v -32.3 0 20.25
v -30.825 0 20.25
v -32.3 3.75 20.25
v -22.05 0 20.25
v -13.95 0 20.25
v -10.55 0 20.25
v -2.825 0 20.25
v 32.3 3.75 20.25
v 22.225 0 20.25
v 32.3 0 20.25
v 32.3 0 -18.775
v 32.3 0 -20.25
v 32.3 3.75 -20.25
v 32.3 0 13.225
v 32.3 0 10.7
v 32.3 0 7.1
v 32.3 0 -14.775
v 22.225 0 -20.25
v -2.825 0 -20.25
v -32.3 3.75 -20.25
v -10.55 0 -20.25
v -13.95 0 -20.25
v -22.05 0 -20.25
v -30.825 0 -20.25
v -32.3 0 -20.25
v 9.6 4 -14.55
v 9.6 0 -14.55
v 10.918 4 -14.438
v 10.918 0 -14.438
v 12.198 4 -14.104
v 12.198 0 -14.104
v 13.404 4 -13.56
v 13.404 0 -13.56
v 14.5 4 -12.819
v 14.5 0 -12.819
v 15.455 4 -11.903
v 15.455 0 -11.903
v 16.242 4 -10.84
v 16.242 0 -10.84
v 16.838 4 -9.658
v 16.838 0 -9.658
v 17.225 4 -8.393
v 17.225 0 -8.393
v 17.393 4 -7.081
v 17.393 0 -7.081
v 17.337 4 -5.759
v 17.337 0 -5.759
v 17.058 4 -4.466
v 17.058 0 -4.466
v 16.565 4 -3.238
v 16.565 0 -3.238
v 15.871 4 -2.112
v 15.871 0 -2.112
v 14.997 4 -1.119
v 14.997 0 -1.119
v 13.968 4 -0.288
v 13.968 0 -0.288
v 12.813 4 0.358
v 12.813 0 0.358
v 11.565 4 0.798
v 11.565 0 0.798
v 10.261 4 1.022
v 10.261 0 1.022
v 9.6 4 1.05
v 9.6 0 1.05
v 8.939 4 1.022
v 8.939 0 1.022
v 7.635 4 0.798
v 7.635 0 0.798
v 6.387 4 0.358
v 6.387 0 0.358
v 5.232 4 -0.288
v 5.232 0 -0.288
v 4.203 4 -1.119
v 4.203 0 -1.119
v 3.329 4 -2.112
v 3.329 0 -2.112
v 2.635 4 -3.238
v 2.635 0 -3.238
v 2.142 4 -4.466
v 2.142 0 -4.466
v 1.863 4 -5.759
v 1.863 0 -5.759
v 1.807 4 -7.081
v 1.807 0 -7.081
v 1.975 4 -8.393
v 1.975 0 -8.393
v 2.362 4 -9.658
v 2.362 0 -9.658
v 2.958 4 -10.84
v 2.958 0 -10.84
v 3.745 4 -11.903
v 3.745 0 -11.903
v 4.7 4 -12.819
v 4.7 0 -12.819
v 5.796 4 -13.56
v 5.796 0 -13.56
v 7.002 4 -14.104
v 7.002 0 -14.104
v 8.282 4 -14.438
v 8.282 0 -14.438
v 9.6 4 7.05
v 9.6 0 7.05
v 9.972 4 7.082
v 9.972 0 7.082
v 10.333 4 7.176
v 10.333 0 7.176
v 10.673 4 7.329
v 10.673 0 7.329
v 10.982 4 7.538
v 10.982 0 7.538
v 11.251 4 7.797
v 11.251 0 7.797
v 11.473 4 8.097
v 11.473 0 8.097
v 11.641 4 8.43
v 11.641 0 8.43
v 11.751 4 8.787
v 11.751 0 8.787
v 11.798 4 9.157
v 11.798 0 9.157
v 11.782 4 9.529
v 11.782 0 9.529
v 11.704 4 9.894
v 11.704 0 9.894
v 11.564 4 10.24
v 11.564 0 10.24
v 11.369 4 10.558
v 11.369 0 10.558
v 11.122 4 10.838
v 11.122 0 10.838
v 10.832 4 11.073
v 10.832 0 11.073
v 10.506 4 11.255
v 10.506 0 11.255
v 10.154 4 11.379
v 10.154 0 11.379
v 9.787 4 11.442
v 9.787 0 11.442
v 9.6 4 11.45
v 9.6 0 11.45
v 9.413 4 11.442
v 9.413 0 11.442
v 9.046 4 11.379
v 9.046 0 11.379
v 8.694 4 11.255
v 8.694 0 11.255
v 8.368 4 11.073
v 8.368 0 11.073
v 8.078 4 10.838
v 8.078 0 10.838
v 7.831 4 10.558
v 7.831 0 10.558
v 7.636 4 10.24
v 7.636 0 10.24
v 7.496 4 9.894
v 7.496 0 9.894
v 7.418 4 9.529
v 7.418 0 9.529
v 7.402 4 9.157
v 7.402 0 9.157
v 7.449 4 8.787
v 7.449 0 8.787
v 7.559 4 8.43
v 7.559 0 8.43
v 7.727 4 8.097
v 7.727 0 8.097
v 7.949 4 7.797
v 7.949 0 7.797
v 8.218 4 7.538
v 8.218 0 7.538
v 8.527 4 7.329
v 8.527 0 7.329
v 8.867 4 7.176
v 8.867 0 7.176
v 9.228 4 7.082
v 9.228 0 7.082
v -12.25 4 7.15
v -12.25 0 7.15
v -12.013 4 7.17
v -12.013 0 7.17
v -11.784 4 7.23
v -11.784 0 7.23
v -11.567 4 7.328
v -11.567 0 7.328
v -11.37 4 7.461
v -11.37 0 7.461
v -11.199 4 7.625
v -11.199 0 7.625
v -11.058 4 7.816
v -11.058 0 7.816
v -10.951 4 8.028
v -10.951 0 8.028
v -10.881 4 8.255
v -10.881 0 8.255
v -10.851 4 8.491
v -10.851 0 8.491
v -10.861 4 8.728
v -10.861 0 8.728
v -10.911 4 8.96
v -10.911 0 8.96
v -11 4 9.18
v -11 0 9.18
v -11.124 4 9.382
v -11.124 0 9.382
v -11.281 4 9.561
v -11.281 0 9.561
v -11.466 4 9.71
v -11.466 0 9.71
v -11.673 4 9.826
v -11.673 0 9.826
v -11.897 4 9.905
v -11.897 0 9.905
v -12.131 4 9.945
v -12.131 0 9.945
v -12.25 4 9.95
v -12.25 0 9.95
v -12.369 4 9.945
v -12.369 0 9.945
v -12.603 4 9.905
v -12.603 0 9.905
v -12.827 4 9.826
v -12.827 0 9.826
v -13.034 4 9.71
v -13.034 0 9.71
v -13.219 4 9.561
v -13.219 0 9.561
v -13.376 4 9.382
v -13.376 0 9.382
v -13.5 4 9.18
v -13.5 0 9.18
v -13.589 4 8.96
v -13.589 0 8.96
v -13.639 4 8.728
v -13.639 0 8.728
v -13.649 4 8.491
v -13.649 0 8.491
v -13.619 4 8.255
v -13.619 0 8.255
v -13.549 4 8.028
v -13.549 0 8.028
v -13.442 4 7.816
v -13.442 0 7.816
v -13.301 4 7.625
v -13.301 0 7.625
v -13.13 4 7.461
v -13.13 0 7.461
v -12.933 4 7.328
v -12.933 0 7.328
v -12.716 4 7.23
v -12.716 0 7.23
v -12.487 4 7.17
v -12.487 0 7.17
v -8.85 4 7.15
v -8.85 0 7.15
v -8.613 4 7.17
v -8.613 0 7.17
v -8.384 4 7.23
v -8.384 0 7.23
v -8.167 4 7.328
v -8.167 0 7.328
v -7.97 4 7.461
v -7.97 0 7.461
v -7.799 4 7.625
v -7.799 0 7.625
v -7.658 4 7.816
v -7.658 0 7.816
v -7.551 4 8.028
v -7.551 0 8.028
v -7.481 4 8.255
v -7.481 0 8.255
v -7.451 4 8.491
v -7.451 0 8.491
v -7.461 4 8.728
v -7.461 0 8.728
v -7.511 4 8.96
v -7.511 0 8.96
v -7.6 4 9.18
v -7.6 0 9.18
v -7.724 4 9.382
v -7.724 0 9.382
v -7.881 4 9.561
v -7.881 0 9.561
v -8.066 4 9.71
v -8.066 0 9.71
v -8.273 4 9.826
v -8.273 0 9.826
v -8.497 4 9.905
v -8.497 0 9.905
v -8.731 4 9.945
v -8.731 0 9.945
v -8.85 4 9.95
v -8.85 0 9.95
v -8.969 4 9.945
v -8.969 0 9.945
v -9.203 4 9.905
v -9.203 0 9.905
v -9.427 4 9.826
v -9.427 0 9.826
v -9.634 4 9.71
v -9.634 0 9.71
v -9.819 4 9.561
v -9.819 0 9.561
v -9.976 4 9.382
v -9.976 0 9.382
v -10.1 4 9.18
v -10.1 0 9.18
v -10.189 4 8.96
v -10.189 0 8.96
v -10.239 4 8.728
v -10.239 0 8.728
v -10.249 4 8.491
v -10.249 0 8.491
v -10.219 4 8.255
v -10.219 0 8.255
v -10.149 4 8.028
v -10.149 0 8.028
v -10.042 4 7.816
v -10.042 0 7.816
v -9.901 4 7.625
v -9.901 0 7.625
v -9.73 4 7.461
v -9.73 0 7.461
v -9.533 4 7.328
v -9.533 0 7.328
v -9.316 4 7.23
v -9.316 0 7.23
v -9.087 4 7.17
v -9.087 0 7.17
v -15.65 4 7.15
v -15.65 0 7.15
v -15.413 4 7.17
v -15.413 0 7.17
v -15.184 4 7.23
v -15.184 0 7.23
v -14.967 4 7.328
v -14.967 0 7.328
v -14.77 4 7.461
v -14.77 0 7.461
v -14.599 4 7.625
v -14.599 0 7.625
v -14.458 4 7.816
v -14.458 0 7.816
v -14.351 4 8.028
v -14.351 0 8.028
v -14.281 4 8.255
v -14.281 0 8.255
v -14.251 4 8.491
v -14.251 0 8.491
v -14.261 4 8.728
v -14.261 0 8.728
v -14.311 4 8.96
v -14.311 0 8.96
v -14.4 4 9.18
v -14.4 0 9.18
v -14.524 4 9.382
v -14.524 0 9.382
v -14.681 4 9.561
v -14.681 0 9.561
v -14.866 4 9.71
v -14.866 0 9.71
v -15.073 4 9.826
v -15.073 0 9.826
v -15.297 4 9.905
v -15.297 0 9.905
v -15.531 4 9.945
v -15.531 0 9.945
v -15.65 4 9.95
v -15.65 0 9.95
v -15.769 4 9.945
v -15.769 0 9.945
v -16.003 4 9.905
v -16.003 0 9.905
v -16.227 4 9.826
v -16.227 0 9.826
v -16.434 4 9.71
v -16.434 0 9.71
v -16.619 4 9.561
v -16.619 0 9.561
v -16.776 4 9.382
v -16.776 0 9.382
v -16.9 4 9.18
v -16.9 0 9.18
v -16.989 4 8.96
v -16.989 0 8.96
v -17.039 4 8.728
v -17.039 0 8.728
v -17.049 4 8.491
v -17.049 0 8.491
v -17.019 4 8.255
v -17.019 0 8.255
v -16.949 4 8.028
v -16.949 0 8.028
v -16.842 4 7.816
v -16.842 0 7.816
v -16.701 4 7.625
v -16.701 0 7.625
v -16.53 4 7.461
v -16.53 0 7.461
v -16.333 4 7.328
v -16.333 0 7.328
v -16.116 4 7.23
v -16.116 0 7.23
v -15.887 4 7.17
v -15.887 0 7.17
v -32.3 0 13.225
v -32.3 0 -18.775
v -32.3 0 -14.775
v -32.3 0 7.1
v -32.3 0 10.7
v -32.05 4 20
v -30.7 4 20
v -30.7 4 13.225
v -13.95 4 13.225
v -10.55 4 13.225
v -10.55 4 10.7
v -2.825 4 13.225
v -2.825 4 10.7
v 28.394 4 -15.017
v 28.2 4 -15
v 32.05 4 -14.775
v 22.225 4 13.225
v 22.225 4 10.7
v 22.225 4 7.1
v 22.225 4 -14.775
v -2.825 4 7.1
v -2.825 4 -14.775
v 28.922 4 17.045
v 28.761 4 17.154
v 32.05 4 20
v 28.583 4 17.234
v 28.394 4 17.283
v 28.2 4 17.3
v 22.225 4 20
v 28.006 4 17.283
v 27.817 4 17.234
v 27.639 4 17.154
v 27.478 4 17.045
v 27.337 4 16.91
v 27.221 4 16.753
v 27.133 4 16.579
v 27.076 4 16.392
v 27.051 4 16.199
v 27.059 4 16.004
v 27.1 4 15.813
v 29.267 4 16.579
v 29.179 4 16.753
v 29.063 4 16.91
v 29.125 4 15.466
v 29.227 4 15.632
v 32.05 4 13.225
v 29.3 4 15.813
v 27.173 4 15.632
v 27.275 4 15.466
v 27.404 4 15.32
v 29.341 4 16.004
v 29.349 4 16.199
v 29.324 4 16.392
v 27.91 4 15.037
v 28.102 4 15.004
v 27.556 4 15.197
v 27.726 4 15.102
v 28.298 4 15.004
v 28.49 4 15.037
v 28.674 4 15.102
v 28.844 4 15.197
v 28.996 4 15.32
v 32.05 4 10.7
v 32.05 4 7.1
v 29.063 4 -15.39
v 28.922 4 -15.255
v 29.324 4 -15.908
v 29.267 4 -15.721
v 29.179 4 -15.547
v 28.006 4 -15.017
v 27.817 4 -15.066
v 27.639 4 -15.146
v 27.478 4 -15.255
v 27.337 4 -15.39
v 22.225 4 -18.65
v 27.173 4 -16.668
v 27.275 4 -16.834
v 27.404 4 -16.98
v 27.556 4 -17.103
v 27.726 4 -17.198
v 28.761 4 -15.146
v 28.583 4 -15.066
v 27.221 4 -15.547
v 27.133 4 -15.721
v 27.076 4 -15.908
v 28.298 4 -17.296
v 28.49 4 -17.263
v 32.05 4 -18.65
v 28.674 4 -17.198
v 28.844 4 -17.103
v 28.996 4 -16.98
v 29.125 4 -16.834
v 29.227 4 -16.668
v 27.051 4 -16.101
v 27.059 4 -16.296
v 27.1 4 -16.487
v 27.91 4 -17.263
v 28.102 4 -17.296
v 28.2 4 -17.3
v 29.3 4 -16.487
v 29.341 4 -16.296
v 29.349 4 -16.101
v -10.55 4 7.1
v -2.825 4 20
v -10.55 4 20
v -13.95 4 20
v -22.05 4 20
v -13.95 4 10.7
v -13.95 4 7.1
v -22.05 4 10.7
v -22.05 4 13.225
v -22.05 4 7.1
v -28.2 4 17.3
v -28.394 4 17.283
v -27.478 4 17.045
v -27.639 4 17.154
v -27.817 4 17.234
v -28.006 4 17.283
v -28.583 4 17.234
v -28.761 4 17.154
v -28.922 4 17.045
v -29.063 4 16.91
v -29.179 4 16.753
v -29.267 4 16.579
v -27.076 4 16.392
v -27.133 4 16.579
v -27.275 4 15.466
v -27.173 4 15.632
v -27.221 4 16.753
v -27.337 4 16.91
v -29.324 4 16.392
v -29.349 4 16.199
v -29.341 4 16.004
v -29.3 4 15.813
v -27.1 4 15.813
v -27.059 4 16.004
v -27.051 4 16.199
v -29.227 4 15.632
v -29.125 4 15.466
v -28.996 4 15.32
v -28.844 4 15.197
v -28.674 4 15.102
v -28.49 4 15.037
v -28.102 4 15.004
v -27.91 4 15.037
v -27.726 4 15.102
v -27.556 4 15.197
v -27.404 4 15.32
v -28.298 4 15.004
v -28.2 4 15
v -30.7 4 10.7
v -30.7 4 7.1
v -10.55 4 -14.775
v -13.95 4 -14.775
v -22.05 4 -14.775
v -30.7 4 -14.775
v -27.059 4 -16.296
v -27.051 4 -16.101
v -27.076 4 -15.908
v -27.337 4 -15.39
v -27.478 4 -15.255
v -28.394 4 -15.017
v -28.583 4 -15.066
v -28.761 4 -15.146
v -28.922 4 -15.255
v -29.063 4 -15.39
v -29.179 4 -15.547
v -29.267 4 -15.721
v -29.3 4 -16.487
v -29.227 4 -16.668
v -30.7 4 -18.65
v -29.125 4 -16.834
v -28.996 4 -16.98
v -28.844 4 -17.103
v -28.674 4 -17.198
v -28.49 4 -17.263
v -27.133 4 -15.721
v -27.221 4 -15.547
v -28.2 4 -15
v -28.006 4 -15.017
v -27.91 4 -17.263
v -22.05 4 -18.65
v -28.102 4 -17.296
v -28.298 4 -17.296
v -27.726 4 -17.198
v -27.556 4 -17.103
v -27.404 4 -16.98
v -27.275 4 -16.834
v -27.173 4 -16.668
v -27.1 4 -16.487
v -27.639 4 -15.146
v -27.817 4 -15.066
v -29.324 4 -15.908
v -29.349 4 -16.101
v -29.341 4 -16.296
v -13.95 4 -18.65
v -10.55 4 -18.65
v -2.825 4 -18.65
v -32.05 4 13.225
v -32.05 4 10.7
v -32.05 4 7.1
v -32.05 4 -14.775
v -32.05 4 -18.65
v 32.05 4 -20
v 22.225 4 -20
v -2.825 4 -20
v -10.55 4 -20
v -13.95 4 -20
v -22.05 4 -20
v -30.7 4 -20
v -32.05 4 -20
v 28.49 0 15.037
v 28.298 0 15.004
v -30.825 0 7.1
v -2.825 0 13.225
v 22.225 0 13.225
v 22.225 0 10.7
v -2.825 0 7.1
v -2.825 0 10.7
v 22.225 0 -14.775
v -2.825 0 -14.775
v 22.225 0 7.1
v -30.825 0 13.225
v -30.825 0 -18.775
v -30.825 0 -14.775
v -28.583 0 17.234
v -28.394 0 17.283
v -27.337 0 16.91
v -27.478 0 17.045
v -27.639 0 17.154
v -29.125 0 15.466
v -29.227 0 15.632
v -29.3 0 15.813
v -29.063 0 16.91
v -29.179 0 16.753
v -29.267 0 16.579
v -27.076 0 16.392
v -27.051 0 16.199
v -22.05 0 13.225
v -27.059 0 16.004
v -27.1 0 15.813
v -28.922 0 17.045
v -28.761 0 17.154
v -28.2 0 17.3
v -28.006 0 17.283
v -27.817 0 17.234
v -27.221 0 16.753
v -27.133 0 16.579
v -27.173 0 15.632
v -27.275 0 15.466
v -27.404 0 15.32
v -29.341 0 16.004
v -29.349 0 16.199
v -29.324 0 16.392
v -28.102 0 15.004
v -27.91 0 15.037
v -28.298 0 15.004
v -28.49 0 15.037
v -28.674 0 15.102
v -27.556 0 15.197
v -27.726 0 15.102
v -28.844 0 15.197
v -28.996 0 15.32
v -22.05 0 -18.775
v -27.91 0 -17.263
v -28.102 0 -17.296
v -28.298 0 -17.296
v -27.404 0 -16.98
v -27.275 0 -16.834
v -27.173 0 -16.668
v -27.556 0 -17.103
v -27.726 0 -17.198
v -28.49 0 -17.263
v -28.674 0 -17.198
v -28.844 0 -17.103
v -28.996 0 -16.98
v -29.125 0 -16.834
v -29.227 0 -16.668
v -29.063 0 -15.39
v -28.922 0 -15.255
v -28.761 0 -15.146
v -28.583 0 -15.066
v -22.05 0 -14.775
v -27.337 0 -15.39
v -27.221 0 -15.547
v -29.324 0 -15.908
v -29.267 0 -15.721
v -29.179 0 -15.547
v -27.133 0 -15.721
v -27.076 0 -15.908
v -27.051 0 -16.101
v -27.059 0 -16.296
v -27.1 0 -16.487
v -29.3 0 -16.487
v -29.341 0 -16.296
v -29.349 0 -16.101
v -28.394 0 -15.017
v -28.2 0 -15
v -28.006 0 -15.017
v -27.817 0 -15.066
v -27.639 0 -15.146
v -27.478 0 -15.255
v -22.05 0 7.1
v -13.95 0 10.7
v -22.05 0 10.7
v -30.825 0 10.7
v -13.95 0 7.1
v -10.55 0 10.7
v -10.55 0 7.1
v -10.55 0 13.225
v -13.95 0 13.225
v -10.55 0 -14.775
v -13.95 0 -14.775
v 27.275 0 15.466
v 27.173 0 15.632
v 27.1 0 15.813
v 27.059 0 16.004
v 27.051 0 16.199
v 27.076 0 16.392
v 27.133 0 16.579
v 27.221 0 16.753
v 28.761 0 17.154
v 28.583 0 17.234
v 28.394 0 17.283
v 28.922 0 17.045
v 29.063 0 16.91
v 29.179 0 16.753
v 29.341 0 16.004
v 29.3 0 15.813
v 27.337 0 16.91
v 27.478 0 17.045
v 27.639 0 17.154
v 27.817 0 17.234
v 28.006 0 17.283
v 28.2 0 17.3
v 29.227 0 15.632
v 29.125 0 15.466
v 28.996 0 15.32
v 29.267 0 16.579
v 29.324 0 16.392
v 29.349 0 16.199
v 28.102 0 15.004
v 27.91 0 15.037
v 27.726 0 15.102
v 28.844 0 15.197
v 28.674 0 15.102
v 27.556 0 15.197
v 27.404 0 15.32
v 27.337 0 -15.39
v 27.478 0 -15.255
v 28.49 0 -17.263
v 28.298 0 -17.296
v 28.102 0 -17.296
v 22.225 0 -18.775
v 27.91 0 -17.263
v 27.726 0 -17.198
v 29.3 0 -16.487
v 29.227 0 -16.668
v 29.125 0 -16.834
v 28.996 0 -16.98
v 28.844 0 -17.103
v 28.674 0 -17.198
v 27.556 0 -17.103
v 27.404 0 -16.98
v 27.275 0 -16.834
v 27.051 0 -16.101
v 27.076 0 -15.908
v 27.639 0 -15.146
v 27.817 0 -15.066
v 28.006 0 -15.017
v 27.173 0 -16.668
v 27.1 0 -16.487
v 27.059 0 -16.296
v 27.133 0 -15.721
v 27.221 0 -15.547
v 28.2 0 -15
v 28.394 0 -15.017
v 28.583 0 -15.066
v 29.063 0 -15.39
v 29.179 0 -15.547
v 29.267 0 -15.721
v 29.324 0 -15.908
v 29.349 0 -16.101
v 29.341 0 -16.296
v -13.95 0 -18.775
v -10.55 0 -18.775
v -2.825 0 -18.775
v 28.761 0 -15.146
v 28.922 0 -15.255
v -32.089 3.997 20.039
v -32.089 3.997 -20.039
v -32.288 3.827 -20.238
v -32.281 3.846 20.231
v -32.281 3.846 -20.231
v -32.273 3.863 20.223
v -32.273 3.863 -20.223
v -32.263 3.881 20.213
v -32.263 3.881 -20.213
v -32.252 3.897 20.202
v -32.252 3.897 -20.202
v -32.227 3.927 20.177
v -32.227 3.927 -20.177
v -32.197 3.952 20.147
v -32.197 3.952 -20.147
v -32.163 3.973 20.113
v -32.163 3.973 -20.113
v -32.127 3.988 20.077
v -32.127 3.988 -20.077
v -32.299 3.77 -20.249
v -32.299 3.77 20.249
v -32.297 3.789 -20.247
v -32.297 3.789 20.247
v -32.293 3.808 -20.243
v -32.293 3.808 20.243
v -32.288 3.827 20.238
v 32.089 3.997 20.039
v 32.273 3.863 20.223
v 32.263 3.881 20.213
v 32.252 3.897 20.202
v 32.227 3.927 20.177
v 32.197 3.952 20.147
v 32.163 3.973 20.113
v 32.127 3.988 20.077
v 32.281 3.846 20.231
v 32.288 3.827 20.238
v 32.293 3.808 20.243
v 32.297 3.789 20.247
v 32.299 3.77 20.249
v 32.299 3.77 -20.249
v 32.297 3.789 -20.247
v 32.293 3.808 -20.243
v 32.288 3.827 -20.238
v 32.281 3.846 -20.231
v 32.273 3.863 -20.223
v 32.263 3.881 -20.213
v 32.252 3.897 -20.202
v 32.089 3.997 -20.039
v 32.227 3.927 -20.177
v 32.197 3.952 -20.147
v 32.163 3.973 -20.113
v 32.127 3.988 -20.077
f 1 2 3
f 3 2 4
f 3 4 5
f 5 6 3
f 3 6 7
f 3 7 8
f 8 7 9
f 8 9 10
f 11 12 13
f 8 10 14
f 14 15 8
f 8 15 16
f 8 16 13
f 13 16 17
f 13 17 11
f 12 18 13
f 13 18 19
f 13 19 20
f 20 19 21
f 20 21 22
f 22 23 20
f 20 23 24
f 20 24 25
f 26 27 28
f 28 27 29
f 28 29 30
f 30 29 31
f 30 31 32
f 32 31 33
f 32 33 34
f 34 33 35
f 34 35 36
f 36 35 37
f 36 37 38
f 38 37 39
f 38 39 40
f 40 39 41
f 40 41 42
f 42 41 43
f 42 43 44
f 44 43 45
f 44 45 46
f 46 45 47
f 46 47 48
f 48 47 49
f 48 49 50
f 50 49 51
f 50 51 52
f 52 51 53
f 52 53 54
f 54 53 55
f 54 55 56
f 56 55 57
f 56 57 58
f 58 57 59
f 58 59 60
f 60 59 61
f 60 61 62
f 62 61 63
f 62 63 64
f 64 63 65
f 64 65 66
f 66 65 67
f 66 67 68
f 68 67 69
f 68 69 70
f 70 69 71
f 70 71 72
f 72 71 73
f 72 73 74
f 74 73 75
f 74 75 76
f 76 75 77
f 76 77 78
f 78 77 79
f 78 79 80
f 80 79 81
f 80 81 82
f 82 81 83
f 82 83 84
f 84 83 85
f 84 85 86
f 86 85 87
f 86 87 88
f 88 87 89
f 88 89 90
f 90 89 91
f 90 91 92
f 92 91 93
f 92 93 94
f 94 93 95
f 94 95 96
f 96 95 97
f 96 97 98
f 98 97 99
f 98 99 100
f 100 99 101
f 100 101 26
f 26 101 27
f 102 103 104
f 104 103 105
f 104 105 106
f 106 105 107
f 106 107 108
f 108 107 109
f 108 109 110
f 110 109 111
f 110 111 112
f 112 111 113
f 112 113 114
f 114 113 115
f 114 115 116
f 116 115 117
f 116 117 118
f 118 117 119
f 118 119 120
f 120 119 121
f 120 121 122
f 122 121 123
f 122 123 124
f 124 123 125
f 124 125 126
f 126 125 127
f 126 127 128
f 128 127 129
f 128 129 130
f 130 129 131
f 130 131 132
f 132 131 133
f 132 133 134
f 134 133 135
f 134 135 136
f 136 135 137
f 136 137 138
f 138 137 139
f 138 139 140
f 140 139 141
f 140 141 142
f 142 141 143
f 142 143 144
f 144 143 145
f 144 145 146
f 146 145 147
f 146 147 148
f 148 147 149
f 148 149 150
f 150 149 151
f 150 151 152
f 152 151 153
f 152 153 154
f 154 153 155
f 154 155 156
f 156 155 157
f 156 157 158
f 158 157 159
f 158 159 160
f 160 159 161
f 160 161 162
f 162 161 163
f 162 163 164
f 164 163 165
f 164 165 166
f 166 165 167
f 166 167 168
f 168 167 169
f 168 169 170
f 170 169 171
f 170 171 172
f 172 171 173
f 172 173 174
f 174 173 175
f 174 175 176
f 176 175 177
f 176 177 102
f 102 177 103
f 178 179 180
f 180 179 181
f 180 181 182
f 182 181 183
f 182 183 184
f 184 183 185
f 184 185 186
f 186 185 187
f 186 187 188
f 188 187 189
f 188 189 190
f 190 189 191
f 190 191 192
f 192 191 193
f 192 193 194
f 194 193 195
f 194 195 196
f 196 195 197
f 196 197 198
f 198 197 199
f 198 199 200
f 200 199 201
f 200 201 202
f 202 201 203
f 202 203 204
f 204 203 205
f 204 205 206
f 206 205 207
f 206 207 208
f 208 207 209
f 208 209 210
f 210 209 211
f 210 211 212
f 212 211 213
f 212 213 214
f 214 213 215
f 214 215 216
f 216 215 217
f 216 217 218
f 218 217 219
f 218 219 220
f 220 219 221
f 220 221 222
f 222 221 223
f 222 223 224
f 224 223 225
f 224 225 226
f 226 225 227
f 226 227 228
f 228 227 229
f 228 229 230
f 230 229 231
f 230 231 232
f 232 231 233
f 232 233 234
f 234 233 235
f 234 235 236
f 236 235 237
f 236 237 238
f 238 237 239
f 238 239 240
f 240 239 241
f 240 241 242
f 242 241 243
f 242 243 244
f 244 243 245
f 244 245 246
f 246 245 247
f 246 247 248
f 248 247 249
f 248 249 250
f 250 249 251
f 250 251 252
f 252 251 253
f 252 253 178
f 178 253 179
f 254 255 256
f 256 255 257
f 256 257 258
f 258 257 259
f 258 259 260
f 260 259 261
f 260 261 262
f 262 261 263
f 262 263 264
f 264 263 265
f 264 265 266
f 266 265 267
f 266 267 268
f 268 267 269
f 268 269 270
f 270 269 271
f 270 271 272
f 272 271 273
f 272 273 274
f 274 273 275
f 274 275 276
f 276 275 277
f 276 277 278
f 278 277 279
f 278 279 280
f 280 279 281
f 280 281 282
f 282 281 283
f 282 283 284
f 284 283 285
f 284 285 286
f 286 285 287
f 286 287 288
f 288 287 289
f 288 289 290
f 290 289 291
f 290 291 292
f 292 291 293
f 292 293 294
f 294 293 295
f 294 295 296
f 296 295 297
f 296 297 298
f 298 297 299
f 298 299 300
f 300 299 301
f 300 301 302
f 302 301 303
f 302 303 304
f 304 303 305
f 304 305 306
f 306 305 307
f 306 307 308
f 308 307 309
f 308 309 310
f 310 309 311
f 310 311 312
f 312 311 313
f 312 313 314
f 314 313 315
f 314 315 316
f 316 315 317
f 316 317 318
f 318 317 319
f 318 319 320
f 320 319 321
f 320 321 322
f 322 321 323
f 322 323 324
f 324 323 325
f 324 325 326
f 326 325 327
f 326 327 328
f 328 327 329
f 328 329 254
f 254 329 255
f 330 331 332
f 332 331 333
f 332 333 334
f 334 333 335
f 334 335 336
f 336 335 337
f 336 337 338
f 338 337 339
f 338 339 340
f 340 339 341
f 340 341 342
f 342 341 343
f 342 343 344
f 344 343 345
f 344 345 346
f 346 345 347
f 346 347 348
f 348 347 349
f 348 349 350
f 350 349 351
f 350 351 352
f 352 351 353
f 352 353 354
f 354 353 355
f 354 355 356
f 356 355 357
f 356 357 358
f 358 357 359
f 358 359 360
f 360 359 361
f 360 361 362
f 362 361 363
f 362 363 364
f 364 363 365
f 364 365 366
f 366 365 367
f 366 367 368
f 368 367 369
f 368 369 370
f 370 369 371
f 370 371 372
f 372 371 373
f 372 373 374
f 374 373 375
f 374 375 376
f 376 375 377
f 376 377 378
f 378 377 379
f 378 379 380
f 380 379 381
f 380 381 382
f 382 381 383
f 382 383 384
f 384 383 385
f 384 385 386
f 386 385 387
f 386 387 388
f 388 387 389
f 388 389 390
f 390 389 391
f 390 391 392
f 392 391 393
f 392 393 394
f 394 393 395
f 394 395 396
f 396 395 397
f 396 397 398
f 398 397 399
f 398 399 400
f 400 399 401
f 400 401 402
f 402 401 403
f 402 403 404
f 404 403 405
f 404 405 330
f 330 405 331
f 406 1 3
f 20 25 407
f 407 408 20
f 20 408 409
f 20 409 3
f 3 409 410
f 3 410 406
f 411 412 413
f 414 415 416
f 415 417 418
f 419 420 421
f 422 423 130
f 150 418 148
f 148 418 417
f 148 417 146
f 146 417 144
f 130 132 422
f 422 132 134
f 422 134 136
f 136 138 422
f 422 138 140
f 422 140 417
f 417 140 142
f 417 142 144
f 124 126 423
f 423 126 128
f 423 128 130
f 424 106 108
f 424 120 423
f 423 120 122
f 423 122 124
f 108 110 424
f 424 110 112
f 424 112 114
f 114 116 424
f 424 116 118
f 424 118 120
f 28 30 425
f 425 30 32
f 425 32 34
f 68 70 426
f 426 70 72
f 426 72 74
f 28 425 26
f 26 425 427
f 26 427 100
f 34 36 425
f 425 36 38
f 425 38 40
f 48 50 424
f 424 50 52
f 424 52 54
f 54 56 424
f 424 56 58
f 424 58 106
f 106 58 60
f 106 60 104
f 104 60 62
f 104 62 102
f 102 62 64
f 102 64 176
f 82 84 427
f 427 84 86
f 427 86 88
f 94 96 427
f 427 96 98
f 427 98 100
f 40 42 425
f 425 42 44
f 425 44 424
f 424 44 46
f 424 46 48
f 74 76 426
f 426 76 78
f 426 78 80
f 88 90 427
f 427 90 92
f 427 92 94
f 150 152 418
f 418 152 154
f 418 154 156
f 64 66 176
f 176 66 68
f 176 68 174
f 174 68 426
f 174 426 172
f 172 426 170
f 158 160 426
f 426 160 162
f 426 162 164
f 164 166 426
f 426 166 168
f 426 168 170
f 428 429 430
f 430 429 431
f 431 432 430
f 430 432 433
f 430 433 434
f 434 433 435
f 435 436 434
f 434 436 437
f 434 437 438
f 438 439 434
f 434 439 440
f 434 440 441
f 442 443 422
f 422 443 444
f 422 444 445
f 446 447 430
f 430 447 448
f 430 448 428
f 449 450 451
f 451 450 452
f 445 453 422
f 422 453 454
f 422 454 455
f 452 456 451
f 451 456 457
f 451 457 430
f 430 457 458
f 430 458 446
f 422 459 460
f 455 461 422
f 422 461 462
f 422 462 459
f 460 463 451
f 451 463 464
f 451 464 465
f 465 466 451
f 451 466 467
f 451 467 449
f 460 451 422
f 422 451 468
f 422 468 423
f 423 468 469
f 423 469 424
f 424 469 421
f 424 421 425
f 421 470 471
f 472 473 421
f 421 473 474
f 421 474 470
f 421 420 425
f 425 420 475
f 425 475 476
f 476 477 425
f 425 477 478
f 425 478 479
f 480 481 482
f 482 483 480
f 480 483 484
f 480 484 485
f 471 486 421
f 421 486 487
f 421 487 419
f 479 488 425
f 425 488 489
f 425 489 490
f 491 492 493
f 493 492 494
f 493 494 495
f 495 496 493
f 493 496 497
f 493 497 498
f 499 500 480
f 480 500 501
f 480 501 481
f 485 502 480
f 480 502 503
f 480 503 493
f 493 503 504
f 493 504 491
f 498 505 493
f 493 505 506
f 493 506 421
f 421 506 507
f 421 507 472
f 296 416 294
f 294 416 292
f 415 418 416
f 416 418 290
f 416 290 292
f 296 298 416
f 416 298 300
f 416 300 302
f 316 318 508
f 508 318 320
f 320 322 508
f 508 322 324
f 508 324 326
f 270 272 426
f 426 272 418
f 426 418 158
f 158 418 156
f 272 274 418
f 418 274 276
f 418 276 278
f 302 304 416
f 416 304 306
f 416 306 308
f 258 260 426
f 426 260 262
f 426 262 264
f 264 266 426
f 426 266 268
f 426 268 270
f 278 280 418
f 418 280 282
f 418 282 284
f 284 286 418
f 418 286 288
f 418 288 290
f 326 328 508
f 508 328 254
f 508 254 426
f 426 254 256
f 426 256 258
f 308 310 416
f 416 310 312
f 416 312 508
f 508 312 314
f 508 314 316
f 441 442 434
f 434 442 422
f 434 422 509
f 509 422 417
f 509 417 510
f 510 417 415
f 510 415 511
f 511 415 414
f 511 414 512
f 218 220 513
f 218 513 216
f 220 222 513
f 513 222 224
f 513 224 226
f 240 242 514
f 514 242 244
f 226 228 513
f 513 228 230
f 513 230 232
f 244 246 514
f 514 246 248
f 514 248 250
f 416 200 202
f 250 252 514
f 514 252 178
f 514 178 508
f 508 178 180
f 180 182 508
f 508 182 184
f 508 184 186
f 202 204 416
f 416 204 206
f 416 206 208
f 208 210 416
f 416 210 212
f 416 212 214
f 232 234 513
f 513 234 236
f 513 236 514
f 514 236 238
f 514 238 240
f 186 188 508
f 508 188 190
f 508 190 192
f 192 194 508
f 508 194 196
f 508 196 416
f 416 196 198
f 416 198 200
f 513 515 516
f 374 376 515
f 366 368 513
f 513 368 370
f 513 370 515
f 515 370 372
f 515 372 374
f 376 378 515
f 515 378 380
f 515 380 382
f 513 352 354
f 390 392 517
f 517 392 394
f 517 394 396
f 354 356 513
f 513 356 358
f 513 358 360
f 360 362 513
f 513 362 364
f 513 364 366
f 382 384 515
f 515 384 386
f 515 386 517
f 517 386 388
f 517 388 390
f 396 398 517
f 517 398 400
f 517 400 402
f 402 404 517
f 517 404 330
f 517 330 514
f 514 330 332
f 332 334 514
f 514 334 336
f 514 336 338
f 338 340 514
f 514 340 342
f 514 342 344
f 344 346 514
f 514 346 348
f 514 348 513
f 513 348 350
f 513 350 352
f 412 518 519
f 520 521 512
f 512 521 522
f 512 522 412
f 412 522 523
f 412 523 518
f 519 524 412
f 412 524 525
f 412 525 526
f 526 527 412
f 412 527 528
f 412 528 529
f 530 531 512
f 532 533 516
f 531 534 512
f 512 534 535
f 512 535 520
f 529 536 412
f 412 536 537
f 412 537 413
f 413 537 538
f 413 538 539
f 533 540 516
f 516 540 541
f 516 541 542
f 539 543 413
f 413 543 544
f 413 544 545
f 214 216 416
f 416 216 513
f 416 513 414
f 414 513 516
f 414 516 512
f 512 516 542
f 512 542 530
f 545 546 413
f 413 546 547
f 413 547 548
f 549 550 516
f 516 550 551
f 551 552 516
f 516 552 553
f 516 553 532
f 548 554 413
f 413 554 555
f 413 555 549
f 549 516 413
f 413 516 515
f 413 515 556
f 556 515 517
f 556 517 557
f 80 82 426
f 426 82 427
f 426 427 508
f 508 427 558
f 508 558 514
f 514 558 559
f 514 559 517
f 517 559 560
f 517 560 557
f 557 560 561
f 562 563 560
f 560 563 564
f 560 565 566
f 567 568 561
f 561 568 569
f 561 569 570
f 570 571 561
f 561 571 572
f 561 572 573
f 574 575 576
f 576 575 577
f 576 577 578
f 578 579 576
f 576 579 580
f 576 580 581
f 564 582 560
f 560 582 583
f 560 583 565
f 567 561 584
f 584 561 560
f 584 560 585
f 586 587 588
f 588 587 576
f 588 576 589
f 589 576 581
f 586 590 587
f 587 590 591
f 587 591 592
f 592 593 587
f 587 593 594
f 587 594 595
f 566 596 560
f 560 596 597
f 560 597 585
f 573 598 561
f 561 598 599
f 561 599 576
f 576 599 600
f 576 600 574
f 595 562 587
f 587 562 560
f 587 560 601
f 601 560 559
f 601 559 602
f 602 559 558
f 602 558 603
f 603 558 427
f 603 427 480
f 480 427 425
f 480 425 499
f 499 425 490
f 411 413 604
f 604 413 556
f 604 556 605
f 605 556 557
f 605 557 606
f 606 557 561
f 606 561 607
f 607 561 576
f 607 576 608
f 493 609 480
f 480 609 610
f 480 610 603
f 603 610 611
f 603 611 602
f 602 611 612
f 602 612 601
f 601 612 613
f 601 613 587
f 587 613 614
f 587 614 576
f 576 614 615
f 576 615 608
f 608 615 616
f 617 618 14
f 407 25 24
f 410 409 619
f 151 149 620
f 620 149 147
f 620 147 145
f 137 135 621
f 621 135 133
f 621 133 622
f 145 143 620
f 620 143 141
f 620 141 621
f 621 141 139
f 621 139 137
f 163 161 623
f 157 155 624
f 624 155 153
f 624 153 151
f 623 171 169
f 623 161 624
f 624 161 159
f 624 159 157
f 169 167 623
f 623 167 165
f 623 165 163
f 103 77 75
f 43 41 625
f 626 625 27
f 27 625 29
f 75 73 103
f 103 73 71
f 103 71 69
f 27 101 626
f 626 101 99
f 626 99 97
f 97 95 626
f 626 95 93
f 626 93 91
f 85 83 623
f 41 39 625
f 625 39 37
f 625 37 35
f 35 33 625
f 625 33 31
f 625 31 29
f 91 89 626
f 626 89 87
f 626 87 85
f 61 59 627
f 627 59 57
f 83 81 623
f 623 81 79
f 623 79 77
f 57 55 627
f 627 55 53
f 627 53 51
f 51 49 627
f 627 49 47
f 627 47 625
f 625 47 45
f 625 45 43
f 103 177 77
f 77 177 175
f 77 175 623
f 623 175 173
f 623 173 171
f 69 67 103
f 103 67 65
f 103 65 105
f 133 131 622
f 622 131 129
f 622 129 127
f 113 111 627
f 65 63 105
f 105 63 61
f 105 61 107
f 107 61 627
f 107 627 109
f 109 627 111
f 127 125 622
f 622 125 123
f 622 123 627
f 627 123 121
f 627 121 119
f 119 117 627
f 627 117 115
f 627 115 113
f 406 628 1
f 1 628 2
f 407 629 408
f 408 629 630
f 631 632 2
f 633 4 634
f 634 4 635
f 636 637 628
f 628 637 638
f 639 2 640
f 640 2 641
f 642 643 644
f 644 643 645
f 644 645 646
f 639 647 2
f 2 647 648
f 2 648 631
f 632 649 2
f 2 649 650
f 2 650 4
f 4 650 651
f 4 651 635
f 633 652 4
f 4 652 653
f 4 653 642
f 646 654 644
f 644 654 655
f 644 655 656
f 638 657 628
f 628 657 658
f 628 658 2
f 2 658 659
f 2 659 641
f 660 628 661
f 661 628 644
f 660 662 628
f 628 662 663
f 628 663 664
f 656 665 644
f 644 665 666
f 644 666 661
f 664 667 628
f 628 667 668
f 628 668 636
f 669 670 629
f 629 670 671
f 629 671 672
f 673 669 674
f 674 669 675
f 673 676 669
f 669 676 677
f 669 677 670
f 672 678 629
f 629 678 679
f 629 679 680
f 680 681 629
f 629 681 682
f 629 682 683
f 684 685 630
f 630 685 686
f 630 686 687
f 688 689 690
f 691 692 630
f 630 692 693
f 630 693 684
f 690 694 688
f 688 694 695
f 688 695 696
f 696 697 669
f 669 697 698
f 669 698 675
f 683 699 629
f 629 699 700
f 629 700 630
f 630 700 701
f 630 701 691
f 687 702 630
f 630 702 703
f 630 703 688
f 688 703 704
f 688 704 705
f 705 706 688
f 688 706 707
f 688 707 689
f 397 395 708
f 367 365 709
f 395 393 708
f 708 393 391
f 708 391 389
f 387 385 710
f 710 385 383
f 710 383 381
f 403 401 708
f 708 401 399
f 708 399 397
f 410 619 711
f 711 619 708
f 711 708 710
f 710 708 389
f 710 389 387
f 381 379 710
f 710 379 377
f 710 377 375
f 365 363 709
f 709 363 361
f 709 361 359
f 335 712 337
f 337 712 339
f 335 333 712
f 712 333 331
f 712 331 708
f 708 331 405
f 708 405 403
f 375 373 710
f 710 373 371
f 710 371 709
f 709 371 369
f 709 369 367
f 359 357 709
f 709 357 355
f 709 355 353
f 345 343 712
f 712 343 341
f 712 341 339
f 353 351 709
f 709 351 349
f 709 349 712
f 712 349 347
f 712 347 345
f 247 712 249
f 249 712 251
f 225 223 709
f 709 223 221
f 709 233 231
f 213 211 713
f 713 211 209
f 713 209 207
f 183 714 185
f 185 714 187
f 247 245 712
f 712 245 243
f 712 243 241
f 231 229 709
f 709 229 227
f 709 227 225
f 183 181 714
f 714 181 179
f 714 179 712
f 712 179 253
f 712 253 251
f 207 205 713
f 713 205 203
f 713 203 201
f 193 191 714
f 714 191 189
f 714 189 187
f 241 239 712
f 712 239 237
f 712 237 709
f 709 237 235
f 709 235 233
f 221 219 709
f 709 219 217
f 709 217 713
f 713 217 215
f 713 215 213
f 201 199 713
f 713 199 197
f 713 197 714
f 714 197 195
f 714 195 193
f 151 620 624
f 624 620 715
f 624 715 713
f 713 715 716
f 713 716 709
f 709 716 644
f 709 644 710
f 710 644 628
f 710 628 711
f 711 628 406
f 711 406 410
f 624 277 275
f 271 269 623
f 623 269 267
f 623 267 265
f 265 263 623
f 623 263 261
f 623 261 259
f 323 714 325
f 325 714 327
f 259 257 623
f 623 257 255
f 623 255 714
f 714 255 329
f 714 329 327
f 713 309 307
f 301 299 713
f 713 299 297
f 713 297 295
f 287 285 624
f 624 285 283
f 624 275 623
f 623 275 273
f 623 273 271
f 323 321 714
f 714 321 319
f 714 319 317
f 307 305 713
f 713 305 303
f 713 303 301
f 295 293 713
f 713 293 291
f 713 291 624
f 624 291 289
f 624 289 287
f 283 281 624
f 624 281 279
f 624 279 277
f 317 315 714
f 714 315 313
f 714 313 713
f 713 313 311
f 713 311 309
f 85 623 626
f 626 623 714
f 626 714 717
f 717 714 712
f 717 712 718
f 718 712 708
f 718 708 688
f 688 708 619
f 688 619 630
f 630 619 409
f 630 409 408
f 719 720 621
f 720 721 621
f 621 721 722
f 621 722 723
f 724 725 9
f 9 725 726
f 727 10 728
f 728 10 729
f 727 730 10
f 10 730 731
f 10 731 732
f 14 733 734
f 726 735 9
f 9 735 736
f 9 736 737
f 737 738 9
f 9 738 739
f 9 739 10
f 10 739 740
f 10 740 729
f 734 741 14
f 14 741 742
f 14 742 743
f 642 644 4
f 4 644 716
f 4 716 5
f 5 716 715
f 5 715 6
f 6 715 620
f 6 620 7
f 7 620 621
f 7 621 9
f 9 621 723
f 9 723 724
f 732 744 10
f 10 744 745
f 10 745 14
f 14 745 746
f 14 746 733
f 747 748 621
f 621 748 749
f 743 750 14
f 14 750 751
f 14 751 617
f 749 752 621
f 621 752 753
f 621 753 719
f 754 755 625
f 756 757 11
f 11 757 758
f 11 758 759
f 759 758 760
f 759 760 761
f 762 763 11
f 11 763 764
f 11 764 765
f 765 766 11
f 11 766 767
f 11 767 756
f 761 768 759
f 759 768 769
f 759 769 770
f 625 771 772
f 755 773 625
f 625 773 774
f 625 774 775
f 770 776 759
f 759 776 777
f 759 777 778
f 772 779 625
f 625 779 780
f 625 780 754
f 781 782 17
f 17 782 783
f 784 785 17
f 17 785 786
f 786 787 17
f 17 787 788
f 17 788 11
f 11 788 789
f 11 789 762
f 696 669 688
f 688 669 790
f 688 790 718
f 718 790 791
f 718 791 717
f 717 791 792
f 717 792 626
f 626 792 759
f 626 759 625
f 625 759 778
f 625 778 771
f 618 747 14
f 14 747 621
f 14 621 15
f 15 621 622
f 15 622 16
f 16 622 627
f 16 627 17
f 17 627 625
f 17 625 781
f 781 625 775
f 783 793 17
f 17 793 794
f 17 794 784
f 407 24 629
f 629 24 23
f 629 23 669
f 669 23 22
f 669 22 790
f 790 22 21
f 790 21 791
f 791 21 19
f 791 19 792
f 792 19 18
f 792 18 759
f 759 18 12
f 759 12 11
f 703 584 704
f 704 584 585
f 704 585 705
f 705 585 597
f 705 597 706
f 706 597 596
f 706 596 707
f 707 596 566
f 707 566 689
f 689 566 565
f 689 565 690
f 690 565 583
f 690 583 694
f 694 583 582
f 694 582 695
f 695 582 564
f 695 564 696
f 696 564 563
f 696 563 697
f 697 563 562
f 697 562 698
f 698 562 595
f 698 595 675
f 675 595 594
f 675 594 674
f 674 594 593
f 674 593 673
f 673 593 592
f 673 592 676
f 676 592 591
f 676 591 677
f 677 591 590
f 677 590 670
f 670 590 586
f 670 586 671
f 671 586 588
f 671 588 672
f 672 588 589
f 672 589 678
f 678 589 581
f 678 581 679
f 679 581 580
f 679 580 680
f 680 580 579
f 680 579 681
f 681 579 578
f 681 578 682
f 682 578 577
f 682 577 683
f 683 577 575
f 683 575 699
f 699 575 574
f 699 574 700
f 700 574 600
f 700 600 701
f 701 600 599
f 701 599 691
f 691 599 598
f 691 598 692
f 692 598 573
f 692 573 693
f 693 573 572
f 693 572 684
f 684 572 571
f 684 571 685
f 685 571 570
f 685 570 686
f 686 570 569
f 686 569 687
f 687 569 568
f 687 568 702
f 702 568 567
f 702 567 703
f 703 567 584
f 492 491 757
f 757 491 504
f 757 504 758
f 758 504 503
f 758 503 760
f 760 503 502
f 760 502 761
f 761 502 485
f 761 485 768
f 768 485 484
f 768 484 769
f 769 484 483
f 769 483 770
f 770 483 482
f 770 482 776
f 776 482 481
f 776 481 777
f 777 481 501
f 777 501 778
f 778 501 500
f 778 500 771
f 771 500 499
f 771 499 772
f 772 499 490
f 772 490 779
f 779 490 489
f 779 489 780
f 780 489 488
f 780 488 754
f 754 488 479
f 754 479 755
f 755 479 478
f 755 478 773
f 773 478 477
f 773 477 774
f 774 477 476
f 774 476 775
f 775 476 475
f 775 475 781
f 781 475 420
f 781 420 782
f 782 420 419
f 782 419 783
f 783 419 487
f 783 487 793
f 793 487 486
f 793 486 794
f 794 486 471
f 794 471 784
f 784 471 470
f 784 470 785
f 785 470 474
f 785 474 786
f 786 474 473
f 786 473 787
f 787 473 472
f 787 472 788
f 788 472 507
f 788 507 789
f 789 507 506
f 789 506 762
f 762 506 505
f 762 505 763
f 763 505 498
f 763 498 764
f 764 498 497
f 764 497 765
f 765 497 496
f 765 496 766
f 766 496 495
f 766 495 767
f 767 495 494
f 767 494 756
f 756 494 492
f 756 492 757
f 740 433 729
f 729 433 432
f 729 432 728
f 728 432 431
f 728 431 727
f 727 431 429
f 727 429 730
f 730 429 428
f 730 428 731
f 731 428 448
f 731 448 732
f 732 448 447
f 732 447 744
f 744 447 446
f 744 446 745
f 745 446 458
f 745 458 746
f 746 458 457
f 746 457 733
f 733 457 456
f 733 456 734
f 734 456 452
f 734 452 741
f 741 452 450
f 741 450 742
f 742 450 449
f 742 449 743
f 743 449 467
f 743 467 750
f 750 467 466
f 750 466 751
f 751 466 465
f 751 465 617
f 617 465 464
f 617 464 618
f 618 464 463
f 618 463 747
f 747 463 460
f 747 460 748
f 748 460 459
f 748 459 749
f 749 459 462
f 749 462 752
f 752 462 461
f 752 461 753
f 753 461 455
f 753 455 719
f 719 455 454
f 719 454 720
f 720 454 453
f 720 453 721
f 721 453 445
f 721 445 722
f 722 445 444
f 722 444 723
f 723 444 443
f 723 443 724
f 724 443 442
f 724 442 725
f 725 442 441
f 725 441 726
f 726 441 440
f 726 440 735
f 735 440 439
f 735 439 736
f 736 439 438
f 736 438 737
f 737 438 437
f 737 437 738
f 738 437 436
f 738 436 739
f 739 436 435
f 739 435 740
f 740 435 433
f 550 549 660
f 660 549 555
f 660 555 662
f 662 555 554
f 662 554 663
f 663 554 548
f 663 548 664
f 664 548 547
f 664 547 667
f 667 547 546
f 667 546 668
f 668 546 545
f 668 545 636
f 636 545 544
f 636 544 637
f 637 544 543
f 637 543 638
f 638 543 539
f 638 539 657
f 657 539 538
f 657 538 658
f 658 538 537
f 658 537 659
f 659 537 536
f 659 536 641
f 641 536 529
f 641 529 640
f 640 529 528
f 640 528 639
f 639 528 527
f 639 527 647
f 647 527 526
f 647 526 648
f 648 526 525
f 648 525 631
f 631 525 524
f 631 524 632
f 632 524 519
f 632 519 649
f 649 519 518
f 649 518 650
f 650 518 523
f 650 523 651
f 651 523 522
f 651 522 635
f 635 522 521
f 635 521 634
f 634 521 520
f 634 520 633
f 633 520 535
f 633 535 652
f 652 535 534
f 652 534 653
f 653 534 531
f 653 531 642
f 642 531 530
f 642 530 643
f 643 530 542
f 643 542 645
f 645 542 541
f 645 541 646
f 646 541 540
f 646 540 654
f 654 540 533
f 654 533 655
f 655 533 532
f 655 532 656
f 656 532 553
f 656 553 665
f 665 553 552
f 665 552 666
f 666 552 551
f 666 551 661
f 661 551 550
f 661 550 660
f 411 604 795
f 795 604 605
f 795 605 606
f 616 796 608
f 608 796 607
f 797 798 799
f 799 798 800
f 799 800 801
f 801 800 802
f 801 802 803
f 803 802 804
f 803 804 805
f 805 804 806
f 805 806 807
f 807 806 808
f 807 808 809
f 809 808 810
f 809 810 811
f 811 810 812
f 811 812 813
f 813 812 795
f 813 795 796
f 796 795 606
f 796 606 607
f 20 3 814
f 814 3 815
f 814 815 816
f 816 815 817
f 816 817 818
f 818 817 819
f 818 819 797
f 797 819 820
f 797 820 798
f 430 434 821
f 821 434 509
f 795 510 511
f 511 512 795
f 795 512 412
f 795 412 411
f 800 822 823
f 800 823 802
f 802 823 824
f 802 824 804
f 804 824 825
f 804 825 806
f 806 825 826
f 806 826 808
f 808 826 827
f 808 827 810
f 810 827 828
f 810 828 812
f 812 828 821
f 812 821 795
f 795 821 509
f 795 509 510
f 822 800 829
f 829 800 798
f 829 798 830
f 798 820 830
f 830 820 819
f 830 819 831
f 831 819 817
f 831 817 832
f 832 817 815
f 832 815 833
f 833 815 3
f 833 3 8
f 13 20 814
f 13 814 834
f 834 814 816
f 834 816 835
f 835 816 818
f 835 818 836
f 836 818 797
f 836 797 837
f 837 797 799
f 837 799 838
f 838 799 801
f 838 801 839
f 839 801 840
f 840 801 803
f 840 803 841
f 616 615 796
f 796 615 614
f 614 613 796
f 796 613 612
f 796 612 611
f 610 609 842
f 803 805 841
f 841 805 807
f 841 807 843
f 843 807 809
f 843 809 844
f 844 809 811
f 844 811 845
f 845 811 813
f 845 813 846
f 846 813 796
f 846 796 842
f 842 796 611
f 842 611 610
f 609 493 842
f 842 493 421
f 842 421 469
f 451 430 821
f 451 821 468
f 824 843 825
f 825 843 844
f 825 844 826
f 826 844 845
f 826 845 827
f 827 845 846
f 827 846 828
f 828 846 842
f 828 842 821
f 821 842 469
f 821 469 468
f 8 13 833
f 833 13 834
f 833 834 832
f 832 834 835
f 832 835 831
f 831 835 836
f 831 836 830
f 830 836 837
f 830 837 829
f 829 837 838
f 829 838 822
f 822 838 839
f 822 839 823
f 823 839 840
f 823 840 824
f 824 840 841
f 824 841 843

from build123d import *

# Parameters (mm, degrees)
SKETCH1_W           = 64.6
SKETCH1_H           = 40.5
SKETCH1_R           = 7.8
SKETCH1_R_2         = 2.2
SKETCH1_R_3         = 1.4
BOSS_EXTRUDE3_DEPTH = 4
SKETCH6_R           = 1.15
CUT_EXTRUDE4_DEPTH  = 5
FILLET4_R           = 0.25


with BuildPart() as part:
    # Sketch1 → Boss-Extrude3 (new body)
    with BuildSketch(Plane(origin=(0, 0, 0), x_dir=(1, 0, 0), z_dir=(0, 1, 0))):
        Rectangle(SKETCH1_W, SKETCH1_H)
        with Locations(Location((9.6, 6.75, 0), (0, 0, 270))):
            Circle(SKETCH1_R, mode=Mode.SUBTRACT)
        with Locations(Location((9.6, -9.25, 0), (0, 0, 270))):
            Circle(SKETCH1_R_2, mode=Mode.SUBTRACT)
        with Locations(Location((-12.25, -8.55, 0), (0, 0, 270))):
            Circle(SKETCH1_R_3, mode=Mode.SUBTRACT)
        with Locations(Location((-8.85, -8.55, 0), (0, 0, 270))):
            Circle(SKETCH1_R_3, mode=Mode.SUBTRACT)
        with Locations(Location((-15.65, -8.55, 0), (0, 0, 270))):
            Circle(SKETCH1_R_3, mode=Mode.SUBTRACT)
    extrude(amount=BOSS_EXTRUDE3_DEPTH)

    # Sketch6 → Cut-Extrude4 (cut)
    with BuildSketch(Plane(origin=(0, 4, 0), x_dir=(1, 0, 0), z_dir=(0, 1, 0))):
        with Locations(Location((-28.2, 16.15, 0), (0, 0, 270))):
            Circle(SKETCH6_R)
        with Locations(Location((28.2, 16.15, 0), (0, 0, 270))):
            Circle(SKETCH6_R)
        with Locations(Location((28.2, -16.15, 0), (0, 0, 270))):
            Circle(SKETCH6_R)
        with Locations(Location((-28.2, -16.15, 0), (0, 0, 270))):
            Circle(SKETCH6_R)
    extrude(amount=-CUT_EXTRUDE4_DEPTH, mode=Mode.SUBTRACT)

    # Fillet4
    fillet4_edges = [part.edges().sort_by_distance(p)[0] for p in [
        (0, 4, 20.25),
        (32.3, 4, 0),
        (0, 4, -20.25),
        (-32.3, 4, 0),
    ]]
    fillet(fillet4_edges, radius=FILLET4_R)


solid = part.part
